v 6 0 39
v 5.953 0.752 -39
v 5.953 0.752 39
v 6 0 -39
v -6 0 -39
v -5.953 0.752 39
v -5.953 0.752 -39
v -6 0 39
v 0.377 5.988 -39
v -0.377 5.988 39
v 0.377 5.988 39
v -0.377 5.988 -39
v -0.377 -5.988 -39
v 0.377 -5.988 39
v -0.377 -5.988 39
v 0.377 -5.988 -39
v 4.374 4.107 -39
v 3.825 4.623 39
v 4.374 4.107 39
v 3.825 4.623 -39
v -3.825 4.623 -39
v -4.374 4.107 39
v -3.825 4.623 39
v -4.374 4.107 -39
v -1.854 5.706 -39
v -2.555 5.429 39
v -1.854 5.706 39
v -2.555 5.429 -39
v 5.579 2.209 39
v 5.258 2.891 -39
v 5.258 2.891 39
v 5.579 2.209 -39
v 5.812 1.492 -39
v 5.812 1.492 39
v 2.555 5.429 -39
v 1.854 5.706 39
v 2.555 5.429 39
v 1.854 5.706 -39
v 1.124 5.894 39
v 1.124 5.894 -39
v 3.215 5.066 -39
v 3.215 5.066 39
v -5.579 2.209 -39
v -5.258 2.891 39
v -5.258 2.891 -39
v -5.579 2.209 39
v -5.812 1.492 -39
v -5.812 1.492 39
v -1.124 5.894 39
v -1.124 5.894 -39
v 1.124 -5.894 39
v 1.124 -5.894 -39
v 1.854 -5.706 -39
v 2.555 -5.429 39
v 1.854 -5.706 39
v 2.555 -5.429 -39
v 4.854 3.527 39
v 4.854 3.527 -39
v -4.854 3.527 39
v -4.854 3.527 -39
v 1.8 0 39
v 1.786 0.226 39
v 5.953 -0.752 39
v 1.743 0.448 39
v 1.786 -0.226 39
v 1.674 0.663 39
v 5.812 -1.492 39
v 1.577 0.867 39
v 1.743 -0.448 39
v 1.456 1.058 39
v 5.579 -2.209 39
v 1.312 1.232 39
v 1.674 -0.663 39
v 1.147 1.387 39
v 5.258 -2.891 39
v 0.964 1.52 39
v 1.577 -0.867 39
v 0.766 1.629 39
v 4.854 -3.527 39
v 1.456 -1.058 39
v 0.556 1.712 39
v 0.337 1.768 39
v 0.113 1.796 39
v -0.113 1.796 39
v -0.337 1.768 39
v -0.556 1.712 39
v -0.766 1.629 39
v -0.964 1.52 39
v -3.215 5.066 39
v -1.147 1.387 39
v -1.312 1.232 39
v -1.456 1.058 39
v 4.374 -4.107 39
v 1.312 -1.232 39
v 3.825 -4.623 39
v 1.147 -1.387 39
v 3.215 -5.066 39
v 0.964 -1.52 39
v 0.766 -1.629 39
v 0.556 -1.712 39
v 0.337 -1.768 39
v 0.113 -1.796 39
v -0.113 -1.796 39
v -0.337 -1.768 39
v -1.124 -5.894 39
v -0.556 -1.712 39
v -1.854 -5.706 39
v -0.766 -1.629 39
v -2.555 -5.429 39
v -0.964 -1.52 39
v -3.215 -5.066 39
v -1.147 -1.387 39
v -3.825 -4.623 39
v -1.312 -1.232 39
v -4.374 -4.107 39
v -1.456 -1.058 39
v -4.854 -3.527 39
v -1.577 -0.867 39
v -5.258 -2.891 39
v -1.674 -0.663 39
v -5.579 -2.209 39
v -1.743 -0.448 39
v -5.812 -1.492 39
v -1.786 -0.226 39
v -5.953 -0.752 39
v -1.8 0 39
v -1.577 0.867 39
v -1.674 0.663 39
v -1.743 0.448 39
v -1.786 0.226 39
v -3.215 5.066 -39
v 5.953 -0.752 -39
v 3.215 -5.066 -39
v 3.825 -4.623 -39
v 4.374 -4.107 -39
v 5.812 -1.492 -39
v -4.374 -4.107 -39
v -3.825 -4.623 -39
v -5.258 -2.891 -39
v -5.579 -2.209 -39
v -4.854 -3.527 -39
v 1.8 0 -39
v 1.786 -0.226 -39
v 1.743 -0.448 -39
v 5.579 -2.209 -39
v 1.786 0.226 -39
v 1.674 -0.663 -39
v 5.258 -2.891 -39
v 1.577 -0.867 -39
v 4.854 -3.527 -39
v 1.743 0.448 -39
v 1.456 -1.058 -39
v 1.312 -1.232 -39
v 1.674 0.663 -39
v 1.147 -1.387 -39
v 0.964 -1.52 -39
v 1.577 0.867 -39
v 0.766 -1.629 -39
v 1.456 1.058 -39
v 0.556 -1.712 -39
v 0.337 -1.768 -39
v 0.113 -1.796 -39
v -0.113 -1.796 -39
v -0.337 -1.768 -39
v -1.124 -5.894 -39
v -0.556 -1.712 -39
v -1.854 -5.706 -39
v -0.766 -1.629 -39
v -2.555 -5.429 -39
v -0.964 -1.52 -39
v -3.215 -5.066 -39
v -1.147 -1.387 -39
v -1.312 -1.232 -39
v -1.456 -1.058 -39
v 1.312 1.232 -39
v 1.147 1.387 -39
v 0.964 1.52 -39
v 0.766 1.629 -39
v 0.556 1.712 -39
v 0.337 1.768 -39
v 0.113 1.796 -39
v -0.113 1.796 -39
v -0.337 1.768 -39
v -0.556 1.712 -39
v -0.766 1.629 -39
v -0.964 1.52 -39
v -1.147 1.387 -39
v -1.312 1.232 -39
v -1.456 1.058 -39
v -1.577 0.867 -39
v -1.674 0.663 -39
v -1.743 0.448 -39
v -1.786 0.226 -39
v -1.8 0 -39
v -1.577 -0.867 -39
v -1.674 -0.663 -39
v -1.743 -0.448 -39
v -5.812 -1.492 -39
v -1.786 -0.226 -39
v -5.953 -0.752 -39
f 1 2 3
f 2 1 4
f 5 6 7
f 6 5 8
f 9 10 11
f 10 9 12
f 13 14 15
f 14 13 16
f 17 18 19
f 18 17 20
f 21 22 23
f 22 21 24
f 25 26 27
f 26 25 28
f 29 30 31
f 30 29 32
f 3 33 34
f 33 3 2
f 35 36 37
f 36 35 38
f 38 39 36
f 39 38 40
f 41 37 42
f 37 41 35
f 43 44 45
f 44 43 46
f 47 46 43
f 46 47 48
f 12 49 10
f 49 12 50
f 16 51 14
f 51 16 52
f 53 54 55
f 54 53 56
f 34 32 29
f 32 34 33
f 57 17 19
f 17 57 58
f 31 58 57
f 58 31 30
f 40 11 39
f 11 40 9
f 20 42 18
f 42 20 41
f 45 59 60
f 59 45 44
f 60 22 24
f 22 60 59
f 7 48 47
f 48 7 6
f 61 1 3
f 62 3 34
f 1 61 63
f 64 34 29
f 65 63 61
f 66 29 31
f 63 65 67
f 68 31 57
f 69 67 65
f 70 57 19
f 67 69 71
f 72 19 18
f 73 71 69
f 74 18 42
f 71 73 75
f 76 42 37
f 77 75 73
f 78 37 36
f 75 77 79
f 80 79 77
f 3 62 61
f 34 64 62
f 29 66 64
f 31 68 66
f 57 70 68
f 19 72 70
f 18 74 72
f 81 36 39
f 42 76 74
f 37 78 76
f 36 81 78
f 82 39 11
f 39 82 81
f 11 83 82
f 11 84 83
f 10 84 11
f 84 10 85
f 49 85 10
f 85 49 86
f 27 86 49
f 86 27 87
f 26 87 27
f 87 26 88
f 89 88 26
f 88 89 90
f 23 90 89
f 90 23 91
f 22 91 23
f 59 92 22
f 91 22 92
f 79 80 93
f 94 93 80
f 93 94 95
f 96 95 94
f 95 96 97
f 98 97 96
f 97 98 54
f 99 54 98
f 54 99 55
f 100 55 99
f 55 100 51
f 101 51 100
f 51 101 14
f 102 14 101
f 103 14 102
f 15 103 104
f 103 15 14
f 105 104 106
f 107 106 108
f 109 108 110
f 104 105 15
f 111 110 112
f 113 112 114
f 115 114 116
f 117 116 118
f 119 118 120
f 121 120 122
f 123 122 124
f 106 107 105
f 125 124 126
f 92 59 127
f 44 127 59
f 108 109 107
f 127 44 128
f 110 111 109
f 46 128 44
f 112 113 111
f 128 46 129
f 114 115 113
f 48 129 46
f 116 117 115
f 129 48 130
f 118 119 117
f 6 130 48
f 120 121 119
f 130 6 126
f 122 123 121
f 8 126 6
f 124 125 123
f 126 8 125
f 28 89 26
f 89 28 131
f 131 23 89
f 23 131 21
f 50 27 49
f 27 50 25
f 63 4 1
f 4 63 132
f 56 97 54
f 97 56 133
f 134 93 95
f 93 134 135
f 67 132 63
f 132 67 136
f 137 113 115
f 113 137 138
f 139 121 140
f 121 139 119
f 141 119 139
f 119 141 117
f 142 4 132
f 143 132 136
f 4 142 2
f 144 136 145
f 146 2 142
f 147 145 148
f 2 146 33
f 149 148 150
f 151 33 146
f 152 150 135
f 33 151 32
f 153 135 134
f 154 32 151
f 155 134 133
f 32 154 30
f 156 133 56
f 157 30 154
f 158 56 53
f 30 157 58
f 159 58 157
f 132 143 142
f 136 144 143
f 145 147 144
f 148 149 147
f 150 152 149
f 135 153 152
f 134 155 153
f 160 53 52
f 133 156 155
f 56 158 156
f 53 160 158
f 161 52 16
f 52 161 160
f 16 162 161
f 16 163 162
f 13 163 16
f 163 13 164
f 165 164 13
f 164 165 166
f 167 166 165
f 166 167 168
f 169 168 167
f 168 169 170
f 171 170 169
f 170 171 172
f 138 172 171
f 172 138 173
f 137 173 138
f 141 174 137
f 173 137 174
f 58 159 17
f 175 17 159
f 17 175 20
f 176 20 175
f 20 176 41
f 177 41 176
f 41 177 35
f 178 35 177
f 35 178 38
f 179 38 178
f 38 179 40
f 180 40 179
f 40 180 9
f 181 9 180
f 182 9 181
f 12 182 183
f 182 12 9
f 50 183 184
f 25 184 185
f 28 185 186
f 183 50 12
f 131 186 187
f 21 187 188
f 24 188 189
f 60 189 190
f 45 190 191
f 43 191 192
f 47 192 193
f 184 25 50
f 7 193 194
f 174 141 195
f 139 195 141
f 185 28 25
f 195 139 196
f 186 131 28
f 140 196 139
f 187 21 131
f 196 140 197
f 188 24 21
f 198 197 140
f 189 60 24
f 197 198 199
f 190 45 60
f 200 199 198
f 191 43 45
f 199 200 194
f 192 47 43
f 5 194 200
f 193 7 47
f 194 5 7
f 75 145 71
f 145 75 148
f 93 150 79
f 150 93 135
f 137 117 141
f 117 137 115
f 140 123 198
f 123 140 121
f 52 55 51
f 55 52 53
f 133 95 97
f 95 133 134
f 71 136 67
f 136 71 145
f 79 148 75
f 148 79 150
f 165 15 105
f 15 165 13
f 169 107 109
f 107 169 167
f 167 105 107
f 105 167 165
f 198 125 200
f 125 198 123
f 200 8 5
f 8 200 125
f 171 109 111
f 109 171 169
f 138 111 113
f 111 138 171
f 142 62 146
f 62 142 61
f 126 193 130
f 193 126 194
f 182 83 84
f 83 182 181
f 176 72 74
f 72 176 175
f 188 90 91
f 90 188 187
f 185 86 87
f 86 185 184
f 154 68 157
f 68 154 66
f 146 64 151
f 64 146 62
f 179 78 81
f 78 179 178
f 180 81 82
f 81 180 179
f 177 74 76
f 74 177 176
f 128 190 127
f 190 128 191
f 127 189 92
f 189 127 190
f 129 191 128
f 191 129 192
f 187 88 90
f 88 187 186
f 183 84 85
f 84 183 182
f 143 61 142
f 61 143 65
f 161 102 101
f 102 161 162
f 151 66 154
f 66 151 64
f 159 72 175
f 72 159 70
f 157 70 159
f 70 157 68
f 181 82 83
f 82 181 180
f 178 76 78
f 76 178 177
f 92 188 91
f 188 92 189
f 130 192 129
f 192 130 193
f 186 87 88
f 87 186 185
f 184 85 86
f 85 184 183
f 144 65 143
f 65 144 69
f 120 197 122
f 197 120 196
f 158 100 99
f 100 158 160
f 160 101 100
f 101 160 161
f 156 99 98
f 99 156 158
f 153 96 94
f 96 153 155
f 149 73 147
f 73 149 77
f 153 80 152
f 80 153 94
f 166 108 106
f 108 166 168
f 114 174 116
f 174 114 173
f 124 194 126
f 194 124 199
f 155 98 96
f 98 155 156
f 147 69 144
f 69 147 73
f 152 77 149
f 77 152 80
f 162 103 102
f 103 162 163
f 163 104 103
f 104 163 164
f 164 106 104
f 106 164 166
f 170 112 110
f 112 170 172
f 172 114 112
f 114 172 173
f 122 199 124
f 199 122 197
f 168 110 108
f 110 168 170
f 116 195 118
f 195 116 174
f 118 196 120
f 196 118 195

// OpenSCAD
$fn = 50;


difference() {
	union() {
		translate(v = [0, 0, -39.0000000000]) {
			cylinder(h = 78, r = 6.0000000000);
		}
	}
	union() {
		translate(v = [0, 0, -100.0000000000]) {
			cylinder(h = 200, r = 1.8000000000);
		}
	}
}
